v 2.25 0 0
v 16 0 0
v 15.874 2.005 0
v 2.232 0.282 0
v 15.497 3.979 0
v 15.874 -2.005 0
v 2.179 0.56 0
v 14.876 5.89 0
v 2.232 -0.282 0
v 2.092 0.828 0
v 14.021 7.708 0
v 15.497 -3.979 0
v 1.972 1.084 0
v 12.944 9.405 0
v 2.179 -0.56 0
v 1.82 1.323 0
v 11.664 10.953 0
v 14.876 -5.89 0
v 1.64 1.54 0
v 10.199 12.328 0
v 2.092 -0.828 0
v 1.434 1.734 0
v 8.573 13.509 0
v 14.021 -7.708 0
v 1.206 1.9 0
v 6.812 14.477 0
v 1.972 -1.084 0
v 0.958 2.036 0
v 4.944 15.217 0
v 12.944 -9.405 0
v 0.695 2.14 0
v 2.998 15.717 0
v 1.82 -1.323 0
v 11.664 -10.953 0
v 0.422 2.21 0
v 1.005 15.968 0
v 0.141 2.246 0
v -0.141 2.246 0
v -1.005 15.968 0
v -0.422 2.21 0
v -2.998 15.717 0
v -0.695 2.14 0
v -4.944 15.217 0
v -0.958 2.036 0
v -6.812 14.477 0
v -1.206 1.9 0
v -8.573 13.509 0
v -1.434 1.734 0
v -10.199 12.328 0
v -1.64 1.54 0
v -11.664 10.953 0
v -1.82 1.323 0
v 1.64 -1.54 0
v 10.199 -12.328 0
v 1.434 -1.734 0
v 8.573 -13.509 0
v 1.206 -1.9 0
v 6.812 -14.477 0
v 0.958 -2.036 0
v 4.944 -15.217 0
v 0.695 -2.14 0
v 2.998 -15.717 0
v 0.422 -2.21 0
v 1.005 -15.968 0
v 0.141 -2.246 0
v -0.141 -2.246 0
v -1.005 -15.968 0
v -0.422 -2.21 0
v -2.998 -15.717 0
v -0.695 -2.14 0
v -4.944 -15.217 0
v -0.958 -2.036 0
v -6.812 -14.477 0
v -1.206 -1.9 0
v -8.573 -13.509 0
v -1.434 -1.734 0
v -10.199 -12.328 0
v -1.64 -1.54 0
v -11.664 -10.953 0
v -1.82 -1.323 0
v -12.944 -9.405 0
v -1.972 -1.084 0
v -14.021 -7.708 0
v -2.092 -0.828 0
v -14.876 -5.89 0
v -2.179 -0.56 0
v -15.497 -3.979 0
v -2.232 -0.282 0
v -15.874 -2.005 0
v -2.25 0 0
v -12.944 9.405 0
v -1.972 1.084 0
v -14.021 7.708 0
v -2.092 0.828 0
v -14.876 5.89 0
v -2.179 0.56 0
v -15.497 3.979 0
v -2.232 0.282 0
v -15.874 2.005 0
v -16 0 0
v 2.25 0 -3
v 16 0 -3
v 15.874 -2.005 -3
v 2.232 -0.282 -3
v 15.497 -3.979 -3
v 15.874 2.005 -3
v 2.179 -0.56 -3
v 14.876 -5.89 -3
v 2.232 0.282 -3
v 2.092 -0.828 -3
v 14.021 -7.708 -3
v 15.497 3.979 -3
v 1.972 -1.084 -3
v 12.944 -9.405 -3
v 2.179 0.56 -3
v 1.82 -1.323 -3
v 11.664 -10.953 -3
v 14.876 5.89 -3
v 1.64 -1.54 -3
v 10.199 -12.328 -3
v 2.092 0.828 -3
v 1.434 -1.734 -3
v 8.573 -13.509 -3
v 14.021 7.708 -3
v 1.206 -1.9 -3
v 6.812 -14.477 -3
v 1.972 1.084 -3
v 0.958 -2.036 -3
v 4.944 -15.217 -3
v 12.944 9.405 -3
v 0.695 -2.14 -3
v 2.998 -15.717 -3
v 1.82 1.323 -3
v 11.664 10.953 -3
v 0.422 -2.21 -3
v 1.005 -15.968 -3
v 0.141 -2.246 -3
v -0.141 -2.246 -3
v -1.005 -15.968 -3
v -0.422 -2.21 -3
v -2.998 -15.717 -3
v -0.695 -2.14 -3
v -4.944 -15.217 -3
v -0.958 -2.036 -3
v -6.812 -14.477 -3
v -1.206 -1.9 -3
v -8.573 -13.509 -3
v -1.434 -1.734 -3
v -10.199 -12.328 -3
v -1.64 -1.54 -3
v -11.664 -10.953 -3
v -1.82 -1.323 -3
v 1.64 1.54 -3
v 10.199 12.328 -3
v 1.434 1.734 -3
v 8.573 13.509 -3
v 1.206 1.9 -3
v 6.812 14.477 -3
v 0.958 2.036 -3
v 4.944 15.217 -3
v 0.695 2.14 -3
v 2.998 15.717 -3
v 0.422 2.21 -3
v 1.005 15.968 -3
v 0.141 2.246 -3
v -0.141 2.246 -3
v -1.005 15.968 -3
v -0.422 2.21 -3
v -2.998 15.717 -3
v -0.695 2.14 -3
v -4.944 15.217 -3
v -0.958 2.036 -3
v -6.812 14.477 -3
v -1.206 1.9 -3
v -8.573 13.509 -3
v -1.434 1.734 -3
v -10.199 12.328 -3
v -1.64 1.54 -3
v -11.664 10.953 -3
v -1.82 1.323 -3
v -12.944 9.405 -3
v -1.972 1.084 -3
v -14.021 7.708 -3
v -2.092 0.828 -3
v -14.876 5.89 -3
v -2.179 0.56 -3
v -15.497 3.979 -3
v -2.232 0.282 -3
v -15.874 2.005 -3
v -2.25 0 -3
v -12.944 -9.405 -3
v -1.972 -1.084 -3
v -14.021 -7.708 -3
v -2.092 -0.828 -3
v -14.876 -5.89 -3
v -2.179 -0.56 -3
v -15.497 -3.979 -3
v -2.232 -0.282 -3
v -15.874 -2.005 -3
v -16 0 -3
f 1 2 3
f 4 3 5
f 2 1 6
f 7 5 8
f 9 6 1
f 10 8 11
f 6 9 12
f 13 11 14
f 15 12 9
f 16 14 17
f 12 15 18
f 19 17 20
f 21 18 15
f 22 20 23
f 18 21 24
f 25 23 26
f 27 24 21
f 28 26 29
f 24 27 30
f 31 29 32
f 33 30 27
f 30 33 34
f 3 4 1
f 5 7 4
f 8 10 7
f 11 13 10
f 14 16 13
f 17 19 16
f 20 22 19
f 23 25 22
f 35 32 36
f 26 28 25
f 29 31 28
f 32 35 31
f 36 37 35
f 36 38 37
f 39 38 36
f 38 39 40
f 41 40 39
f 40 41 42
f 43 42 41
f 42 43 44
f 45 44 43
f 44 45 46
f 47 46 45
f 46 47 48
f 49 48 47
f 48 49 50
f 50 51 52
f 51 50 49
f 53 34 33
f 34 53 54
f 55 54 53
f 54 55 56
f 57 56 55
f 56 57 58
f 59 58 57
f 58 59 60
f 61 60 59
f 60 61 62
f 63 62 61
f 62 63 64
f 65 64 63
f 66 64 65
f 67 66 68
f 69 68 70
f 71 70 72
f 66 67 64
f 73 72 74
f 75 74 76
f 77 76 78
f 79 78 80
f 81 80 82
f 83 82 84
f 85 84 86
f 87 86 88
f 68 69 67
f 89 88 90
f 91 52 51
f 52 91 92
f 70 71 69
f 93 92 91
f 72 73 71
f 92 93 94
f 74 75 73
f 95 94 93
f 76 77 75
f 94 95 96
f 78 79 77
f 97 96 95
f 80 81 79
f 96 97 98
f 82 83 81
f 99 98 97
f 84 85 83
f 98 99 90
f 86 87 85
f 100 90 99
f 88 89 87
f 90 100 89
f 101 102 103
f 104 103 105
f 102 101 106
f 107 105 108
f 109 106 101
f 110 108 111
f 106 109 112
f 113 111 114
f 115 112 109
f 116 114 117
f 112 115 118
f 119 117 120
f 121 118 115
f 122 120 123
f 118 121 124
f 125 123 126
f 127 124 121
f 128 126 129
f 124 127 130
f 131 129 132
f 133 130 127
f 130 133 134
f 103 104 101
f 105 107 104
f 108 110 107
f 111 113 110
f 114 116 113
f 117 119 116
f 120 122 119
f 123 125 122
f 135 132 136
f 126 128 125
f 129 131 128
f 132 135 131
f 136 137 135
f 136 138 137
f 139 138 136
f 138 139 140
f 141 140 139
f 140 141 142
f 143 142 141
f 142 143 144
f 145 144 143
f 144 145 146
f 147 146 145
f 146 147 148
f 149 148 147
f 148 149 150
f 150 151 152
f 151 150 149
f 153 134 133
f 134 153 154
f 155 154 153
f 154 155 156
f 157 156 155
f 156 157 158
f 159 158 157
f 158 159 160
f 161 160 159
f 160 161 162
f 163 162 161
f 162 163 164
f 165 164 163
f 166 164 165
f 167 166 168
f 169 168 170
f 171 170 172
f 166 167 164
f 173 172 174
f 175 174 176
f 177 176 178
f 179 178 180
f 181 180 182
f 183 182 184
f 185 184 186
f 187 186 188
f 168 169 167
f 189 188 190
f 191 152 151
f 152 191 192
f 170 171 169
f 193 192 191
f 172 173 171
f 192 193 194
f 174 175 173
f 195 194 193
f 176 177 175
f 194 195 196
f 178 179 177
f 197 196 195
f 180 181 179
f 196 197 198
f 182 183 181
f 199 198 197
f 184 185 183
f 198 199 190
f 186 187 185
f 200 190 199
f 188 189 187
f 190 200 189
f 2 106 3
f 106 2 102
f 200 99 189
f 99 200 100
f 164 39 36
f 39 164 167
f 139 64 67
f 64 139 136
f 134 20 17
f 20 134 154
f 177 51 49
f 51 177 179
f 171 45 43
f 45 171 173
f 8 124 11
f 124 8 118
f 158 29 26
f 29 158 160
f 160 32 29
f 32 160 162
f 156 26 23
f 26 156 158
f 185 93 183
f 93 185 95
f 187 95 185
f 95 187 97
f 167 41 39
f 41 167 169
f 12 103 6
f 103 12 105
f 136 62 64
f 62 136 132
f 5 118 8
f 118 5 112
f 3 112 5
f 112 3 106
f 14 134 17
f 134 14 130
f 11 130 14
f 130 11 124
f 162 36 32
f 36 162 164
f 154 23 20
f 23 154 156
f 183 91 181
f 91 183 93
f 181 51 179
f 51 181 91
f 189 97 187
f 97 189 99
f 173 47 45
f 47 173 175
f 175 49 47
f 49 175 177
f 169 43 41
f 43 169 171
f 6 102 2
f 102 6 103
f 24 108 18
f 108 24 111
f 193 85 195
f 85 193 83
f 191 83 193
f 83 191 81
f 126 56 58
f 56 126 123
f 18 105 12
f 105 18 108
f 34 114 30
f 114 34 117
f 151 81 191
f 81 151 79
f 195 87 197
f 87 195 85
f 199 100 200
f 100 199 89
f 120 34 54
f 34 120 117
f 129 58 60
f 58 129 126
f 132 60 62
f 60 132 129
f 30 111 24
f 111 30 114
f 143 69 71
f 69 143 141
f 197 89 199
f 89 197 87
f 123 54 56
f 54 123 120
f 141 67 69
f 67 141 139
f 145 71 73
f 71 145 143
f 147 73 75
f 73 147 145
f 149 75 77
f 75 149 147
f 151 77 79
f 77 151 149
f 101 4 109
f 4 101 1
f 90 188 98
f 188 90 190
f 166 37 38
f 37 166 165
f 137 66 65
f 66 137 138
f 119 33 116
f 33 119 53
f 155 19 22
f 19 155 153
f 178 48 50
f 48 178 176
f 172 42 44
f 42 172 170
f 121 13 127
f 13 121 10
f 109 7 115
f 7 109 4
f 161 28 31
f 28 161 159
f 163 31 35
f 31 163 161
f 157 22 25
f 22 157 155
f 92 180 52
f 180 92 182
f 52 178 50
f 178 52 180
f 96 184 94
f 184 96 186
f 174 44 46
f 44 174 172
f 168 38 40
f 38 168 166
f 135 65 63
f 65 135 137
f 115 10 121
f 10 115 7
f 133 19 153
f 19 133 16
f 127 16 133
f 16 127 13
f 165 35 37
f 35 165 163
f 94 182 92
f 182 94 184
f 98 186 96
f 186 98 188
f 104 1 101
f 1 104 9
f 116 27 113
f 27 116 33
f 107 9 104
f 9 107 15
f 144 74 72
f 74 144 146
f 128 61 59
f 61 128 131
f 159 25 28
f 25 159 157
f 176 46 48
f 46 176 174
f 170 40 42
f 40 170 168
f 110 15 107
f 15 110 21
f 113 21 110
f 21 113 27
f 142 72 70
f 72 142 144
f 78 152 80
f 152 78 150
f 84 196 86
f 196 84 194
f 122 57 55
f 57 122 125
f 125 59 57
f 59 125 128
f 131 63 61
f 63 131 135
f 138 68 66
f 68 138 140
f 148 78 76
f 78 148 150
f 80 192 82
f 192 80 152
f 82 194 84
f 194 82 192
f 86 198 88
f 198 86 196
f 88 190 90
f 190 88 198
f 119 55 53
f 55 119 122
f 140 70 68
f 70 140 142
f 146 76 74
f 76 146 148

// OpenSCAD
$fn = 50;


difference() {
	union() {
		translate(v = [0, 0, -3.0000000000]) {
			cylinder(h = 3, r = 7.0000000000);
		}
		translate(v = [0, 0, -3.0000000000]) {
			cylinder(h = 3, r = 16.0000000000);
		}
	}
	union() {
		#translate(v = [0, 0, -3]) {
			cylinder(h = 3, r = 2.2500000000);
		}
	}
}
